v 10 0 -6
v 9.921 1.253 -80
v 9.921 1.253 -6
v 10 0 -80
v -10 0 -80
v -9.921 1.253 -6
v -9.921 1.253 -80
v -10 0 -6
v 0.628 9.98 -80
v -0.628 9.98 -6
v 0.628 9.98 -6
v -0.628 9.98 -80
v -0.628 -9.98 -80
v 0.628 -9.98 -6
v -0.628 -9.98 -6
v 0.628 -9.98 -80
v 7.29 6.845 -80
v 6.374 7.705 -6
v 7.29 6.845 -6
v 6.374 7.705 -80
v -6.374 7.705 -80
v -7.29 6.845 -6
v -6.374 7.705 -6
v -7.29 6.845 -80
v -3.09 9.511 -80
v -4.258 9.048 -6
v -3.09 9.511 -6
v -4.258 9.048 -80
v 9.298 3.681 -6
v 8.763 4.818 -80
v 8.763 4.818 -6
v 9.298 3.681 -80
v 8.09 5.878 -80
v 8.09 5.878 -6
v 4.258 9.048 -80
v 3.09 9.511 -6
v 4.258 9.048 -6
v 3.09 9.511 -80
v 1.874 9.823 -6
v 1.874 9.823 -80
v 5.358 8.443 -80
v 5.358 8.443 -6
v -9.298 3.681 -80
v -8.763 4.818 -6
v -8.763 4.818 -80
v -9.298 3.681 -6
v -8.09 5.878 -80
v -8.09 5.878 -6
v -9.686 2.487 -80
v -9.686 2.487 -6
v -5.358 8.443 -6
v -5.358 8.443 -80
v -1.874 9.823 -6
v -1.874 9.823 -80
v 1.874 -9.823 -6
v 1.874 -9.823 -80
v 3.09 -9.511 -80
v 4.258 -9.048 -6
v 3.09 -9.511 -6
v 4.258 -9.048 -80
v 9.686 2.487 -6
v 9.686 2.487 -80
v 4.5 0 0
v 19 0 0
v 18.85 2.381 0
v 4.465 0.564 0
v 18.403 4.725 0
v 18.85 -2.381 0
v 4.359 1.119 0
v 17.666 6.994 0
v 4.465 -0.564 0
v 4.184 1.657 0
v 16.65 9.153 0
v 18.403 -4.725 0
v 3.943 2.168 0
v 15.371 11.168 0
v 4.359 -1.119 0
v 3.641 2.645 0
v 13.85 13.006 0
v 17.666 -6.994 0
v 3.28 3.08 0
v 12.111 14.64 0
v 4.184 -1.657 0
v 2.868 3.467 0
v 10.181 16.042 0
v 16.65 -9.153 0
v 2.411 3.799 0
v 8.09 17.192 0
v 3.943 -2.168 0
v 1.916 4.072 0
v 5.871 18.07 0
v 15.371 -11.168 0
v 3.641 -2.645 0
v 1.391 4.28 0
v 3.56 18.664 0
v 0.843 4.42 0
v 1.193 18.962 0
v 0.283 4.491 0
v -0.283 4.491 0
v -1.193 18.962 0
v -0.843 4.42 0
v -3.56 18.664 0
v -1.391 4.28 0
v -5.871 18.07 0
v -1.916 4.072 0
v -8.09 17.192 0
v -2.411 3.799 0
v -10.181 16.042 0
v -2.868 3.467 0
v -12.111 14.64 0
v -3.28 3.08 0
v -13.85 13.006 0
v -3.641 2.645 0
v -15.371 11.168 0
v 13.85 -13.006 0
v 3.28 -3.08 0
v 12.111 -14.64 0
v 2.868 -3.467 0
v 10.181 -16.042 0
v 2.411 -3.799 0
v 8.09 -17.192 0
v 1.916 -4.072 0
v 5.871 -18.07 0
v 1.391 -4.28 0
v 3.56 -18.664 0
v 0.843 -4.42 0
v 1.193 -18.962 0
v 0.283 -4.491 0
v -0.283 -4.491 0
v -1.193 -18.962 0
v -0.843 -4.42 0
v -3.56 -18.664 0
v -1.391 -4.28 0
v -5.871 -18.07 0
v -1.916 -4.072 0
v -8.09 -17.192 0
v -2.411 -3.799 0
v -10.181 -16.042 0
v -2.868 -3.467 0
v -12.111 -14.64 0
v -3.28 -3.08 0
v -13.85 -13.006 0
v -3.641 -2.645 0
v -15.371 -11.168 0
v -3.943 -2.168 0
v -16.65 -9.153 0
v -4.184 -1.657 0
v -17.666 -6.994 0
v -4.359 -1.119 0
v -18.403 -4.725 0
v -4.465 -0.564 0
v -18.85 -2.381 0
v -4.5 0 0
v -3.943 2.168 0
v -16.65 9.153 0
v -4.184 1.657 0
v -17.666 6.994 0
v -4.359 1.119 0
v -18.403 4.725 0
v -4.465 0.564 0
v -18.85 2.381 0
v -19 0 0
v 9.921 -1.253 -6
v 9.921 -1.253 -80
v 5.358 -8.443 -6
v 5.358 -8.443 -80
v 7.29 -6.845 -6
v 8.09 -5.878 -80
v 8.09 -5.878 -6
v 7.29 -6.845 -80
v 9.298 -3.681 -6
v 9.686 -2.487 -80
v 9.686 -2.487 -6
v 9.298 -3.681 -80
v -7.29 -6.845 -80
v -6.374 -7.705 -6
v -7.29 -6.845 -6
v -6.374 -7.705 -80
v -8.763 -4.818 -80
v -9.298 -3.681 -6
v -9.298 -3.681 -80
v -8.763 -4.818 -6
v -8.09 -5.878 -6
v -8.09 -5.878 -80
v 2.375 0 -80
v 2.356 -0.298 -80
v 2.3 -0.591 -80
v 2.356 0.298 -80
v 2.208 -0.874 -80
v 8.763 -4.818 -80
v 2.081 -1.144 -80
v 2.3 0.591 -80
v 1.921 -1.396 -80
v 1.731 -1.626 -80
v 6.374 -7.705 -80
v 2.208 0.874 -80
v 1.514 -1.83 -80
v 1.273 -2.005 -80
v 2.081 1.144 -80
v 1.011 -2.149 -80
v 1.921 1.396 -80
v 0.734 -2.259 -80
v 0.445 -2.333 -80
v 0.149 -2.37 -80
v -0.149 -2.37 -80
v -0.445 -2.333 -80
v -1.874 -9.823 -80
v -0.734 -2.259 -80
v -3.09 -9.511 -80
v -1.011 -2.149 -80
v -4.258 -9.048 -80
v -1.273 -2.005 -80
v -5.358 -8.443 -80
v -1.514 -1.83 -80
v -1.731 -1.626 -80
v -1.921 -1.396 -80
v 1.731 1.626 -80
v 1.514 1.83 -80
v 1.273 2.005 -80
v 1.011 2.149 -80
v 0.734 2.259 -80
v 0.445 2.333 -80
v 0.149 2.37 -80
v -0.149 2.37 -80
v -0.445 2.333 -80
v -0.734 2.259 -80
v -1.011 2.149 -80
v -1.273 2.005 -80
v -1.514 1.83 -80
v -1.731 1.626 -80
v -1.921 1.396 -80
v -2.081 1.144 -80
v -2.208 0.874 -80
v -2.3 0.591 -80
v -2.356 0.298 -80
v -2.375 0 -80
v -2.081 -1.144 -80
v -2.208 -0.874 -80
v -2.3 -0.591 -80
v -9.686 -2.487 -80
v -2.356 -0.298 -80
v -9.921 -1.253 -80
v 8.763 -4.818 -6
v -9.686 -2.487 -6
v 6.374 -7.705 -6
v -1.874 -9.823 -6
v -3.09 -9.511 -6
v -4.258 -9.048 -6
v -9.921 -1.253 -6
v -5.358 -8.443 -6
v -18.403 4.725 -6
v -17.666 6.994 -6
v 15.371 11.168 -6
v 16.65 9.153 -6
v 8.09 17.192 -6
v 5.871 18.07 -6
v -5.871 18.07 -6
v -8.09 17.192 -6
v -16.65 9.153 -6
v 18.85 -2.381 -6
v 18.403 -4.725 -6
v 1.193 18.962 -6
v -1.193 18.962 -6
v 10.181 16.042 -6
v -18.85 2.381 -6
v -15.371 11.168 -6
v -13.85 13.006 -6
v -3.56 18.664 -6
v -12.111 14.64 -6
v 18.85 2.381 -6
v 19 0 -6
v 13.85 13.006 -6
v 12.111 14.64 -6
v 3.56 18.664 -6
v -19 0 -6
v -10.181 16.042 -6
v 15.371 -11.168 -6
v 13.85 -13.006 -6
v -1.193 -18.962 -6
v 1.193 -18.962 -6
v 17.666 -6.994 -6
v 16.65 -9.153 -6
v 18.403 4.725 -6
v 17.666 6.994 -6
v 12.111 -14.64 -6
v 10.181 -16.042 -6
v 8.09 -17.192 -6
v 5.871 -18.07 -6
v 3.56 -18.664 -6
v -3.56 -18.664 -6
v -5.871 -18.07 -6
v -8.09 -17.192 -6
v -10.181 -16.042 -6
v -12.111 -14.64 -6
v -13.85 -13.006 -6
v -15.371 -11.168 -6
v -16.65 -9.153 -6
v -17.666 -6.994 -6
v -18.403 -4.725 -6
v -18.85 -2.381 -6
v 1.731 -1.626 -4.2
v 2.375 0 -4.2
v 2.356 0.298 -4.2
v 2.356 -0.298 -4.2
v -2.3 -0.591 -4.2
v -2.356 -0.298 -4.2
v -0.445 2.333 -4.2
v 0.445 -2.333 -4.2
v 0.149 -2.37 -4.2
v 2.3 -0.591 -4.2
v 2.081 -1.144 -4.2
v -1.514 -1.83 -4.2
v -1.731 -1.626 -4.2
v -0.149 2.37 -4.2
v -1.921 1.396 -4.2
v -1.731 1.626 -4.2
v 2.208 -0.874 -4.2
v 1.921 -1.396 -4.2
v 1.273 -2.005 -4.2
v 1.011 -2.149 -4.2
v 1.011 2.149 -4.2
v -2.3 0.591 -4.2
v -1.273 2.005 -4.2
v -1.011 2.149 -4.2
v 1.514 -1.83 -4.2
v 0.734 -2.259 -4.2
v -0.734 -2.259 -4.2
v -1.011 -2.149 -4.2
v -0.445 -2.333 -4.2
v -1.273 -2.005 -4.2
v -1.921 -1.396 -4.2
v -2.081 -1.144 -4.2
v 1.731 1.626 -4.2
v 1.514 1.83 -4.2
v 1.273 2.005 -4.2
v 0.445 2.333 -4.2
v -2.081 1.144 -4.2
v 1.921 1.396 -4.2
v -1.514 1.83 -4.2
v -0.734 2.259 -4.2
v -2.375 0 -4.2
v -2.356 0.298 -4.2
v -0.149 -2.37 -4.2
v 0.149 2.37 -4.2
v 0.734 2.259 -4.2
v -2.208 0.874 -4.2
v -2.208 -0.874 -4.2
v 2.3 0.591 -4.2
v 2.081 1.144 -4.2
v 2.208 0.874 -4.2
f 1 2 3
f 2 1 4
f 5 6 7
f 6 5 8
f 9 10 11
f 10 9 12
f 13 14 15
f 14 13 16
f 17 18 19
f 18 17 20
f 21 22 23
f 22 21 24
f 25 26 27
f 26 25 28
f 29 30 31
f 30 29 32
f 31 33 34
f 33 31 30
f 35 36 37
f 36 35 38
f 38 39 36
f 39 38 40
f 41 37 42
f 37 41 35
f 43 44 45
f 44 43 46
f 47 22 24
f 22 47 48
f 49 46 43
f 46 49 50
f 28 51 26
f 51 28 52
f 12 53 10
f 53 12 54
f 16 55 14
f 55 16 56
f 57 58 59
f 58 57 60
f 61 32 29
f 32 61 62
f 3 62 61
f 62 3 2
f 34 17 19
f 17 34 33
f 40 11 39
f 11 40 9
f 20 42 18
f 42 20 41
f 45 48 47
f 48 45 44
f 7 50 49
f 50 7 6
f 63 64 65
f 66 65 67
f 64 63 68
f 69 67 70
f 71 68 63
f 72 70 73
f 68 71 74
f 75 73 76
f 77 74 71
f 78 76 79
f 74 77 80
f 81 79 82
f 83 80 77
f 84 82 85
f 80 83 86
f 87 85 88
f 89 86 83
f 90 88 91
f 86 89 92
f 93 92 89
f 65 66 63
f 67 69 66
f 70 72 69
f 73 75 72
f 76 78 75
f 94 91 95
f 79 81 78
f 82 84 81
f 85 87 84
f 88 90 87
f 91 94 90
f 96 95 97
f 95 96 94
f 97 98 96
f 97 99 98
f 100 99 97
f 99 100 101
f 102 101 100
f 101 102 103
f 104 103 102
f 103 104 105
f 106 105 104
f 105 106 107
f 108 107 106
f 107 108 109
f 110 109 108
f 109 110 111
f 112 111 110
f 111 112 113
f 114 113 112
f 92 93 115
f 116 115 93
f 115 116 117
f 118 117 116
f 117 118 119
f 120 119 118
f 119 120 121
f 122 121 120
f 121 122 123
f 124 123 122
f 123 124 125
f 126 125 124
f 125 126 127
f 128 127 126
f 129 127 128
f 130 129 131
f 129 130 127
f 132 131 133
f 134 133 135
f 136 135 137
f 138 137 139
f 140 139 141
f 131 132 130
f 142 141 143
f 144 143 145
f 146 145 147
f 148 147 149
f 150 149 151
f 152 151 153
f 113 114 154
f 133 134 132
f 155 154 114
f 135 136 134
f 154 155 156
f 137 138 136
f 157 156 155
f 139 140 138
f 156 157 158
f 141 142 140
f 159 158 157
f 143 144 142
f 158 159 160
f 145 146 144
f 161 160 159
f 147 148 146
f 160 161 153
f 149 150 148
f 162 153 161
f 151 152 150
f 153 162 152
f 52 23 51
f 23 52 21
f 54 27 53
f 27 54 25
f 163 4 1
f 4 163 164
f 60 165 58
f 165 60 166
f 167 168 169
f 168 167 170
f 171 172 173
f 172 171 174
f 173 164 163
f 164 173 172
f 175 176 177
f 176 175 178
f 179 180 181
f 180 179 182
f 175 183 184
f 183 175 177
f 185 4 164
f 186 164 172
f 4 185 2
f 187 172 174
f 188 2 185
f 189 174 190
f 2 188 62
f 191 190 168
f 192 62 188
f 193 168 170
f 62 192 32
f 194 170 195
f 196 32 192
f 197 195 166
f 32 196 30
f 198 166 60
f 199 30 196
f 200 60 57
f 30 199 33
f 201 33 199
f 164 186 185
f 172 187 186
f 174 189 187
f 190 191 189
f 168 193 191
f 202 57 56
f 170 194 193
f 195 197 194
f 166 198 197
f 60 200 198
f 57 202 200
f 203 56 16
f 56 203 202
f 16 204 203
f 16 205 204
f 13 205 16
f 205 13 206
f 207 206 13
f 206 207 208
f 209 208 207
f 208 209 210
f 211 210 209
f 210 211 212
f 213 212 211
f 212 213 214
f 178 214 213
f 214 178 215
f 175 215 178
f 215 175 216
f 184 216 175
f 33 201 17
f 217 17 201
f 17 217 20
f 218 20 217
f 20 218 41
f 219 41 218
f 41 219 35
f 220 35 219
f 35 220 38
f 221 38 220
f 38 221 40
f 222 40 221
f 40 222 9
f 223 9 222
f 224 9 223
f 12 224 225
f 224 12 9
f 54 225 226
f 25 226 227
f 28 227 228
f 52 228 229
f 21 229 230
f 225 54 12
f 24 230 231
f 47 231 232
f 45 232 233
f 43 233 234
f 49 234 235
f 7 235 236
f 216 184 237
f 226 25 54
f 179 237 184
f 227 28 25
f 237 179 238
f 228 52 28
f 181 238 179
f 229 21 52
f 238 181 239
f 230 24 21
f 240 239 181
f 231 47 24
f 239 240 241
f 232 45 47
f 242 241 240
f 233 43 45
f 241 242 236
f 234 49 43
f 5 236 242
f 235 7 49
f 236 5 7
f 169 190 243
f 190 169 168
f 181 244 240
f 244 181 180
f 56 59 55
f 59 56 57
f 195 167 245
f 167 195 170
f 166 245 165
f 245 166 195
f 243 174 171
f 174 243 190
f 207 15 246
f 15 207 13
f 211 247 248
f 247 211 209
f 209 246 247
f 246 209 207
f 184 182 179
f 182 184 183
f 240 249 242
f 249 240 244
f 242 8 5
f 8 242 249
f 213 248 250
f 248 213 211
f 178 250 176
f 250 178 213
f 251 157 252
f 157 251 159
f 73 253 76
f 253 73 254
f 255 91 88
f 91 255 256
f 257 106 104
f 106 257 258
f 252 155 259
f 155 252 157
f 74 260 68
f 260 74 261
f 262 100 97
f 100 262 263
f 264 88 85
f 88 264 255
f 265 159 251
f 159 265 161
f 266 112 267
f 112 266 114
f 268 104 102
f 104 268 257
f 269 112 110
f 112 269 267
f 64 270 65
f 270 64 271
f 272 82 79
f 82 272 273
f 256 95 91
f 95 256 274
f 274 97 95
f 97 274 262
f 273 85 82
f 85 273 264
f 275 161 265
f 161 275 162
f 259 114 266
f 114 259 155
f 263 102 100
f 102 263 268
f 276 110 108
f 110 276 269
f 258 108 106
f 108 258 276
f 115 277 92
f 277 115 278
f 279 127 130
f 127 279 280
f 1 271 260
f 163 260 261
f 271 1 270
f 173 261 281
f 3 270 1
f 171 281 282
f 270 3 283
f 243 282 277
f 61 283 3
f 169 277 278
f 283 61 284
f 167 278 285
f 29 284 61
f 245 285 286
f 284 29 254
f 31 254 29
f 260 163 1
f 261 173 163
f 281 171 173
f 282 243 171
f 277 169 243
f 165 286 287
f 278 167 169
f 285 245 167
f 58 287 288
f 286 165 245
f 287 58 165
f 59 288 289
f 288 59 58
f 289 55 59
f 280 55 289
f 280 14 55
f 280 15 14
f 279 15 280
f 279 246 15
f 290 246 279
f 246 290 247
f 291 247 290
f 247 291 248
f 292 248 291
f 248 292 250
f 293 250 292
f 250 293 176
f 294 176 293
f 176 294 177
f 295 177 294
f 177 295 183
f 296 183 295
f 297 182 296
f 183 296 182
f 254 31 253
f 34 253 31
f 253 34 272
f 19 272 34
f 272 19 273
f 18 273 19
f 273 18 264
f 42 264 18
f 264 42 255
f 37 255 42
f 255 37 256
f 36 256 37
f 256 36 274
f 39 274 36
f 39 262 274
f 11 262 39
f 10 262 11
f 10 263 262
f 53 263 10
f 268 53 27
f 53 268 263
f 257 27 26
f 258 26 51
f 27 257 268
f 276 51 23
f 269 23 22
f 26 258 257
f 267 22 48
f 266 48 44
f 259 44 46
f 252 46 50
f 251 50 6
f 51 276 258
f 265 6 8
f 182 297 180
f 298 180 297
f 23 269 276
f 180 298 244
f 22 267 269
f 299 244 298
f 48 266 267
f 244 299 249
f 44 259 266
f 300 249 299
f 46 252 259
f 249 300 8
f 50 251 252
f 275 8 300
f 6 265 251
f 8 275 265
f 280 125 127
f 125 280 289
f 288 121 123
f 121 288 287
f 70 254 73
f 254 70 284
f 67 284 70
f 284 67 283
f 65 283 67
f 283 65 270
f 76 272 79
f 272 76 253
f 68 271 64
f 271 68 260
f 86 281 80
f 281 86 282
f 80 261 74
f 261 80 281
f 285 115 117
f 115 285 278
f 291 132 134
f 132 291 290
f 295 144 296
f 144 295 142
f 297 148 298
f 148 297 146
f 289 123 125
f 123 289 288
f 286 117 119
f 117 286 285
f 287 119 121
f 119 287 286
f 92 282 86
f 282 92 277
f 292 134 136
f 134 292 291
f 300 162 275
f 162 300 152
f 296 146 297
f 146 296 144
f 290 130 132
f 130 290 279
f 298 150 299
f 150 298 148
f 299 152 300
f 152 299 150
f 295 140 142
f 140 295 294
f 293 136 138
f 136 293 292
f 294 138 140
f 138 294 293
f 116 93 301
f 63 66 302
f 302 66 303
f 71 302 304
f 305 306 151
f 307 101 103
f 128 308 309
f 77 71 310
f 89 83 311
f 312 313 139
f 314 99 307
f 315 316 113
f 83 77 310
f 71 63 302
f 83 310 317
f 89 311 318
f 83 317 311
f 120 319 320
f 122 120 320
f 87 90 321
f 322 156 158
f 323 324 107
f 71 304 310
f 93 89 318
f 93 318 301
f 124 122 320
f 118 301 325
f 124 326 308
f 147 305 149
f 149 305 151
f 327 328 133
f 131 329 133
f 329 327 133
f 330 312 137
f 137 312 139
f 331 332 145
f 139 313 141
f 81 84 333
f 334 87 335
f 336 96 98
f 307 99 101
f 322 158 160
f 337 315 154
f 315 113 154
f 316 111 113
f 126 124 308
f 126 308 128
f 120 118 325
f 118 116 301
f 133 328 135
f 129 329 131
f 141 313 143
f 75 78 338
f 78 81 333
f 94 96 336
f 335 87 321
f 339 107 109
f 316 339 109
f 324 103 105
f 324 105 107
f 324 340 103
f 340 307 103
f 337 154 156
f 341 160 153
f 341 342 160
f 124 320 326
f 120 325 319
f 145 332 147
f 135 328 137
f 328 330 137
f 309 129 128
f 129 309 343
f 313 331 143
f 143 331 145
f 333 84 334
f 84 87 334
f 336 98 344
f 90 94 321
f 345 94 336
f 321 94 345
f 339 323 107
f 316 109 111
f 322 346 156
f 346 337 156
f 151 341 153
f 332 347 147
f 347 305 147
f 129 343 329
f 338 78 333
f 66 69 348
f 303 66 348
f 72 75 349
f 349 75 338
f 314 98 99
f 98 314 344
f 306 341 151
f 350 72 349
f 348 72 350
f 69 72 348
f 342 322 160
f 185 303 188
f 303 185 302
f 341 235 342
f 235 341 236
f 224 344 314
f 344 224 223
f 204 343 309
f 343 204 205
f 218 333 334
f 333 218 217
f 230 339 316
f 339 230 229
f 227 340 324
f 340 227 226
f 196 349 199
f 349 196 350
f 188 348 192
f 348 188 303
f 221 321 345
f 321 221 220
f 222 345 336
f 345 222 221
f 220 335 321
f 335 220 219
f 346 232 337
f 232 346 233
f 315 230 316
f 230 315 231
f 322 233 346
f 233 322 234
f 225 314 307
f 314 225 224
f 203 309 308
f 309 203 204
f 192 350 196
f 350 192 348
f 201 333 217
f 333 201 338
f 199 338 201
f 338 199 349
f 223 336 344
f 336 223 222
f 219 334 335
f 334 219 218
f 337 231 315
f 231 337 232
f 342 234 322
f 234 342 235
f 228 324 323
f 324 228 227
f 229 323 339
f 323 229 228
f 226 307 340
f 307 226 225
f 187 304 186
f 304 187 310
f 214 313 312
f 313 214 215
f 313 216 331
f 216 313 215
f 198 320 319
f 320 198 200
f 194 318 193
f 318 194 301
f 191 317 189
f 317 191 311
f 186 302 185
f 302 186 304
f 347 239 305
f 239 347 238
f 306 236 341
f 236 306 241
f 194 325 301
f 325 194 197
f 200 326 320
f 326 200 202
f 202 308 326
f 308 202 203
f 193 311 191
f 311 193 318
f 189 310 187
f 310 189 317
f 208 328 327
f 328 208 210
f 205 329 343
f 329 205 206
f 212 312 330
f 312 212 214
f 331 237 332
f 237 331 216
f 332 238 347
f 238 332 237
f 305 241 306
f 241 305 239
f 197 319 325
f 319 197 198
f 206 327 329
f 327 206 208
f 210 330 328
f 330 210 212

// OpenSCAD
$fn = 50;


difference() {
	union() {
		translate(v = [0, 0, -80.0000000000]) {
			cylinder(h = 80, r = 10.0000000000);
		}
		translate(v = [0, 0, -6.0000000000]) {
			cylinder(h = 6, r = 19.0000000000);
		}
	}
	union() {
		translate(v = [0, 0, 0]) {
			rotate(a = [0, 0, 0]) {
				difference() {
					union() {
						#translate(v = [0, 0, -80.0000000000]) {
							cylinder(h = 80, r = 2.2500000000);
						}
						#translate(v = [0, 0, -4.2000000000]) {
							cylinder(h = 4.2000000000, r = 10.0000000000, r1 = 2.3750000000, r2 = 4.5000000000);
						}
						#translate(v = [0, 0, -80.0000000000]) {
							cylinder(h = 80, r = 2.3750000000);
						}
						#translate(v = [0, 0, -80.0000000000]) {
							cylinder(h = 80, r = 2.2500000000);
						}
					}
					union();
				}
			}
		}
	}
}
